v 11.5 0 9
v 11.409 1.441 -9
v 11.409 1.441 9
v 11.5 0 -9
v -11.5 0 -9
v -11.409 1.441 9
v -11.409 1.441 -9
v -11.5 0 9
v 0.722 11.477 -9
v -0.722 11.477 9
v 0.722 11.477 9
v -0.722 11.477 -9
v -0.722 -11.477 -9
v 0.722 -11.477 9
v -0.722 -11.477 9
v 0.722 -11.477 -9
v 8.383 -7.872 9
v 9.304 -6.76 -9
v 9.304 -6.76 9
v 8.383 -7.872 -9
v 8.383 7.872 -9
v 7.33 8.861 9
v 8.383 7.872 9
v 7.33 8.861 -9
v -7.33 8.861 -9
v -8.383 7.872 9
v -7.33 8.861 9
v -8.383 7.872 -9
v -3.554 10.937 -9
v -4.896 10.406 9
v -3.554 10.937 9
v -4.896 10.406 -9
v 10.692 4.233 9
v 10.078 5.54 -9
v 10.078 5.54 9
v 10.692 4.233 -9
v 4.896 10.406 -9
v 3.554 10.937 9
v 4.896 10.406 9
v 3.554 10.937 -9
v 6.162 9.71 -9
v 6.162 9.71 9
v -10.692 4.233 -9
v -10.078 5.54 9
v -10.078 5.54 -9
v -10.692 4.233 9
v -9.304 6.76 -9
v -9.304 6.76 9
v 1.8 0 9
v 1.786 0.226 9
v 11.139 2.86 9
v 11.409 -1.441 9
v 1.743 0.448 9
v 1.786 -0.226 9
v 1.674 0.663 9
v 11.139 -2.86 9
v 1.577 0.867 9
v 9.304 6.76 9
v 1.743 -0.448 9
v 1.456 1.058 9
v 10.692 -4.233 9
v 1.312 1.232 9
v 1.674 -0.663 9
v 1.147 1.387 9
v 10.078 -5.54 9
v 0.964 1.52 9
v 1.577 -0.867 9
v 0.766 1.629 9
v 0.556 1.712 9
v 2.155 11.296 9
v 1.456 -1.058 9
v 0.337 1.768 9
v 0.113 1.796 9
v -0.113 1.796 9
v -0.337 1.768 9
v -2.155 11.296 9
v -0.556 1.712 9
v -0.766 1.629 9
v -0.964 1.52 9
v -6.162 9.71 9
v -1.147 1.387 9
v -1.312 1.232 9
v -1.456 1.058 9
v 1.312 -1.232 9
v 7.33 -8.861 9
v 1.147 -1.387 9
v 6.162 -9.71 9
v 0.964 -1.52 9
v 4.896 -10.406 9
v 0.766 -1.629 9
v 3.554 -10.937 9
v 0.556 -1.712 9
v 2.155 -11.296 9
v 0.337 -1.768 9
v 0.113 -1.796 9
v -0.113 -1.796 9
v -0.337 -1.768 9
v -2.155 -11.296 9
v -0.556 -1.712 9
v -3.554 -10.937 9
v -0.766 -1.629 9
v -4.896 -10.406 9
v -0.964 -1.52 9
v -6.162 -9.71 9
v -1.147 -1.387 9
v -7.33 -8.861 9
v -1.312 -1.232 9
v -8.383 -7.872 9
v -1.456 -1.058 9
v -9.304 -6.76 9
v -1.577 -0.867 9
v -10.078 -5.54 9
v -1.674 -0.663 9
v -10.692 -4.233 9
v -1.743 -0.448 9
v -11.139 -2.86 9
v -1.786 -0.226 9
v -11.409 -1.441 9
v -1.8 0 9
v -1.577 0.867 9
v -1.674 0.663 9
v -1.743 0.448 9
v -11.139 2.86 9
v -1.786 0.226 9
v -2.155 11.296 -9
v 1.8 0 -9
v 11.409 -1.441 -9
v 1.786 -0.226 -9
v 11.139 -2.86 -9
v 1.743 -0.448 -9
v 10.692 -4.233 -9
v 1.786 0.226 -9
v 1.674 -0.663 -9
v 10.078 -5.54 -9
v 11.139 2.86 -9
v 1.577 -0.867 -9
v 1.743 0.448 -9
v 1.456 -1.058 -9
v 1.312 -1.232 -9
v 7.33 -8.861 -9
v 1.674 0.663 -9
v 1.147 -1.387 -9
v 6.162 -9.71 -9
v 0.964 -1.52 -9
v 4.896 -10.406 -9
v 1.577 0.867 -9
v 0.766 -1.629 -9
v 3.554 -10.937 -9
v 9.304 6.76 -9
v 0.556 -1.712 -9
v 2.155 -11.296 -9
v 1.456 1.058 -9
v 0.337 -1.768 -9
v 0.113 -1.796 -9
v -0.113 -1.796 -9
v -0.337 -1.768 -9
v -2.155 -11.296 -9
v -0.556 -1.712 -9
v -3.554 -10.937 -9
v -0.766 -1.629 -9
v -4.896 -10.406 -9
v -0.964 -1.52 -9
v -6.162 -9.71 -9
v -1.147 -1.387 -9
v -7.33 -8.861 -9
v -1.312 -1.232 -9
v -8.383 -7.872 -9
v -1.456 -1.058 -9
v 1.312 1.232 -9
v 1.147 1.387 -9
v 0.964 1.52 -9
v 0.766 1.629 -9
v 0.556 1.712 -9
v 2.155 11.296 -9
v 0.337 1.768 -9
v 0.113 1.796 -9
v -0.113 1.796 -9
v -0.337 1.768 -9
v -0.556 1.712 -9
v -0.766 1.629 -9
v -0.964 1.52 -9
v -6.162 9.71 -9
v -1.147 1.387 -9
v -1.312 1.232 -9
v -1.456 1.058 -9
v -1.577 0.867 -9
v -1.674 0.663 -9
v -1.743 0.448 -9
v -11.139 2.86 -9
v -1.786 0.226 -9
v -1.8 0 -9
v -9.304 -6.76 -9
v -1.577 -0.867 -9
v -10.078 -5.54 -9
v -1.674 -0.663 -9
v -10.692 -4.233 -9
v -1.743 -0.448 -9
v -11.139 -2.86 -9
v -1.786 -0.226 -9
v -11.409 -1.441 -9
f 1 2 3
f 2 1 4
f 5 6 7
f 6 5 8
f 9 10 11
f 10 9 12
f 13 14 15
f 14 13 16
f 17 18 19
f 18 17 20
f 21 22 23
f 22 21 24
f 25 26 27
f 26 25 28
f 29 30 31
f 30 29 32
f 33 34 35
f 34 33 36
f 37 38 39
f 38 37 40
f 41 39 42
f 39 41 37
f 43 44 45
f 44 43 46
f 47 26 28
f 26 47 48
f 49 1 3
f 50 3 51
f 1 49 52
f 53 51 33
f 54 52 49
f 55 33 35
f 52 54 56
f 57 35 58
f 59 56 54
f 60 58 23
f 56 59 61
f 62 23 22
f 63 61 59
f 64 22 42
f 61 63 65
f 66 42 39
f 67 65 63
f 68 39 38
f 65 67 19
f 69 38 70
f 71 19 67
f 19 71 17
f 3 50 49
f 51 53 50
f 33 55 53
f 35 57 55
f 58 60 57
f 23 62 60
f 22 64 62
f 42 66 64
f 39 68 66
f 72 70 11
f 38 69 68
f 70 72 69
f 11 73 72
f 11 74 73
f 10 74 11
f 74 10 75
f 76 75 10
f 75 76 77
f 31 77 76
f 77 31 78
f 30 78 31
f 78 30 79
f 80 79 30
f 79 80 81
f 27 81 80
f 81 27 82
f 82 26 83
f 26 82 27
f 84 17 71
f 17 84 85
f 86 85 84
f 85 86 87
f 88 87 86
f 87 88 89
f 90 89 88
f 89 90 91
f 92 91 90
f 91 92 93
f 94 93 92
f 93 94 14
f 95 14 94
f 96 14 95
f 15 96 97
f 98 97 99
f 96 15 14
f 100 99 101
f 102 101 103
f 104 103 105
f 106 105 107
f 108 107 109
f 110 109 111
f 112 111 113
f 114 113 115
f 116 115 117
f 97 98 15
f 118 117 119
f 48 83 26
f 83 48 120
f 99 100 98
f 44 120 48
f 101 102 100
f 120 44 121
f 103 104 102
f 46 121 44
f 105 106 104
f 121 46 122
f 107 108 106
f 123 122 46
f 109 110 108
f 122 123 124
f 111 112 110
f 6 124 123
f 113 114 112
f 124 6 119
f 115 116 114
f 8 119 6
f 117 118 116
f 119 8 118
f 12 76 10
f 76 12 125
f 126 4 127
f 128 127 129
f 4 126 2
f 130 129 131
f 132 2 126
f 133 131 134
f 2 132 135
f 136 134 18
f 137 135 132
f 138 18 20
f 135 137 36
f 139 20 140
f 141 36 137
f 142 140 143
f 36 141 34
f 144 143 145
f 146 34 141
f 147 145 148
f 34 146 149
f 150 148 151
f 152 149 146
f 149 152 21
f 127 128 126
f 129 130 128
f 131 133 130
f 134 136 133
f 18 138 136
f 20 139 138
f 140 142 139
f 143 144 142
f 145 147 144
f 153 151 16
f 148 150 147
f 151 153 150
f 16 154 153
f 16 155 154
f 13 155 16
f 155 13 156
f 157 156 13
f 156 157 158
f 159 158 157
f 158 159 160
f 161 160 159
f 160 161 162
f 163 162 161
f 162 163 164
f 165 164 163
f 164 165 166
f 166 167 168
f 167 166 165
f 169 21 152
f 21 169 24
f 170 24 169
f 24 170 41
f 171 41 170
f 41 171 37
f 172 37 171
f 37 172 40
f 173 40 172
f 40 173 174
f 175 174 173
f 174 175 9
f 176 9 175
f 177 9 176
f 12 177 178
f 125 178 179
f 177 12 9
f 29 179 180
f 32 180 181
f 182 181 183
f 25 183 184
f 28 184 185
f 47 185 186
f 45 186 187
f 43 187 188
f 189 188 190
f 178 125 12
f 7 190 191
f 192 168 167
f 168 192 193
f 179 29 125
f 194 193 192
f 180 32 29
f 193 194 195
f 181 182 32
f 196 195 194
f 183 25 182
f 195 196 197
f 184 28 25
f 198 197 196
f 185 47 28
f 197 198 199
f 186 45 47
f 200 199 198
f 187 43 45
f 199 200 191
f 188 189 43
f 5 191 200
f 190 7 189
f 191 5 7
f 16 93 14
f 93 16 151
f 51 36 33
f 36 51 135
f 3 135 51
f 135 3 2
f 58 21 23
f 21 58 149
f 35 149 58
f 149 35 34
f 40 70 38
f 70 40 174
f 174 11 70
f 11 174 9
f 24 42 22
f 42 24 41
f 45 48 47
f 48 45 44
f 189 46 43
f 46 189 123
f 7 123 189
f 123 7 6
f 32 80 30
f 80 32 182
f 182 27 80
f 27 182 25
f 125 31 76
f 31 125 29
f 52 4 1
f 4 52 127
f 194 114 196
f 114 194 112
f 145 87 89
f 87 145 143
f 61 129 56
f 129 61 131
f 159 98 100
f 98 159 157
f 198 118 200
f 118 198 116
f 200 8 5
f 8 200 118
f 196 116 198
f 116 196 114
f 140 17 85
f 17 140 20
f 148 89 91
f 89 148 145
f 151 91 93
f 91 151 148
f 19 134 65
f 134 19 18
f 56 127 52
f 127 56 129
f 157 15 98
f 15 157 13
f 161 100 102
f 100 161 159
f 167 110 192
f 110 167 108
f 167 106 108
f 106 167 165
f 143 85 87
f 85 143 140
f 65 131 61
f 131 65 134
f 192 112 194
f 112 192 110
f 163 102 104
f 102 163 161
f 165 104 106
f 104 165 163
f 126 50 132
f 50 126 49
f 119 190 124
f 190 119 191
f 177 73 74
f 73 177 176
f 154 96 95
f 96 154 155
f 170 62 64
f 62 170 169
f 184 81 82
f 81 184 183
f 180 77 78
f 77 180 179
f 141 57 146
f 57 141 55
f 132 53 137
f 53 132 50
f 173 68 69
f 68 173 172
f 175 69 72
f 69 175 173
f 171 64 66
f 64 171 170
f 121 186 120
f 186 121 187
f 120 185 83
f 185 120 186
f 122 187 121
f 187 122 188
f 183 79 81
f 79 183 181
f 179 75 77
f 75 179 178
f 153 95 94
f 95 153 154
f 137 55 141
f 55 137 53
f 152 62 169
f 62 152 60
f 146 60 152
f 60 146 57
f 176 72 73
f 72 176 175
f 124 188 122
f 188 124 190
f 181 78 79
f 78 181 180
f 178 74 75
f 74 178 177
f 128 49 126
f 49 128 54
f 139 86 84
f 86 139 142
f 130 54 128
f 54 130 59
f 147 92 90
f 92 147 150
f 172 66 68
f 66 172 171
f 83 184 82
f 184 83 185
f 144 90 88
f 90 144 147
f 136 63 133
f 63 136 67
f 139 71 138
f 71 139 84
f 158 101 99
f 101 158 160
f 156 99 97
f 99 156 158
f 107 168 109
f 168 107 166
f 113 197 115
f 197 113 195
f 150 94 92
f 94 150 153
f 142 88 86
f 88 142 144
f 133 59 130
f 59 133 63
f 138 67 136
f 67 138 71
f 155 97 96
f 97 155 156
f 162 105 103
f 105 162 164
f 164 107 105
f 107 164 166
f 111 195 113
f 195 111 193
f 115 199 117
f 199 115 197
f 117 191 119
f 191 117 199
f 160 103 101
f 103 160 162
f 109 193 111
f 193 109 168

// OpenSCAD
$fn = 50;


difference() {
	union() {
		translate(v = [0, 0, -9.0000000000]) {
			cylinder(h = 18, r = 11.5000000000);
		}
	}
	union() {
		translate(v = [0, 0, -100.0000000000]) {
			cylinder(h = 200, r = 1.8000000000);
		}
	}
}
